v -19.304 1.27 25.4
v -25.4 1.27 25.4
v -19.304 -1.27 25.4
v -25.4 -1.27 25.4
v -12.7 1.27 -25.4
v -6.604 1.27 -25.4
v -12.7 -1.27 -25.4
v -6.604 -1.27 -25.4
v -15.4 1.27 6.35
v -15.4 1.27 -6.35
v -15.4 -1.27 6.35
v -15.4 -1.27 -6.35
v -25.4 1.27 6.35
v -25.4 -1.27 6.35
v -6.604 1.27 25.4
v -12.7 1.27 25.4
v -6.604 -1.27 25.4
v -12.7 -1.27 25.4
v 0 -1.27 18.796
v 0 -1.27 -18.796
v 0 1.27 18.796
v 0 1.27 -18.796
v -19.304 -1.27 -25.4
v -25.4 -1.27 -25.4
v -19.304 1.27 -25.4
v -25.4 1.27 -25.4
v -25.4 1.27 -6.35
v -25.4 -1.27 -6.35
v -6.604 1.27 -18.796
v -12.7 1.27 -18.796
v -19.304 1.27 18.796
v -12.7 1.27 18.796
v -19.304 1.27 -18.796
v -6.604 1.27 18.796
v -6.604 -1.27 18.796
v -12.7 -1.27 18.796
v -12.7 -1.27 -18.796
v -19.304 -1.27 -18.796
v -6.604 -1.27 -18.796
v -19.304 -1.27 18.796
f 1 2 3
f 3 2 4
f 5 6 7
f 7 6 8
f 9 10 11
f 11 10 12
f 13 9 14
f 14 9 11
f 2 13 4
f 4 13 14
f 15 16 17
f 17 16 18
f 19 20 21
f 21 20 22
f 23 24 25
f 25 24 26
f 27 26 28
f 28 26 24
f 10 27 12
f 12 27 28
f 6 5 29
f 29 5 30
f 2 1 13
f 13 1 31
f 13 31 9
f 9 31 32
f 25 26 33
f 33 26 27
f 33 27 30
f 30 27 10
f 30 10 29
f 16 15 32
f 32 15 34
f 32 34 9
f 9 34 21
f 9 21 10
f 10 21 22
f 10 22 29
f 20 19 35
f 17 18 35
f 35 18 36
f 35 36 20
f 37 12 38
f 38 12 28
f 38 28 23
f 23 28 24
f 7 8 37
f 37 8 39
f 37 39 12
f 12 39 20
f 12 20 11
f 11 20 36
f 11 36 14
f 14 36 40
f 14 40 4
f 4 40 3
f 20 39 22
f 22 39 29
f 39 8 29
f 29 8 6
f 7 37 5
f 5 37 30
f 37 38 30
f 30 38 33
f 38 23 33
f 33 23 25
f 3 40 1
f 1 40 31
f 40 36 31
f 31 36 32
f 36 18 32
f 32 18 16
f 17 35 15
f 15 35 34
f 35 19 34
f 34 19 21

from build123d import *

# Parameters (mm, degrees)
BOSS_EXTRUDE1_DEPTH = 1.27
SKETCH2_W           = 6.604
SKETCH2_H           = 6.604
CUT_EXTRUDE1_DEPTH  = 37.010715072


with BuildPart() as part:
    # Sketch1 → Boss-Extrude1 (new, symmetric)
    with BuildSketch(Plane(origin=(0, 0, 0), x_dir=(1, 0, 0), z_dir=(0, 1, 0))):
        Polygon((0, -25.4), (0, 25.4), (-25.4, 25.4), (-25.4, 6.35), (-15.4, 6.35), (-15.4, -6.35), (-25.4, -6.35), (-25.4, -25.4), align=None)
    extrude(amount=BOSS_EXTRUDE1_DEPTH, both=True)

    # Sketch2 → Cut-Extrude1 (cut, through all)
    with BuildSketch(Plane(origin=(0, 1.27, 0), x_dir=(1, 0, 0), z_dir=(0, 1, 0))):
        with Locations((-3.302, 22.098)):
            Rectangle(SKETCH2_W, SKETCH2_H)
        with Locations((-16.002, 22.098)):
            Rectangle(SKETCH2_W, SKETCH2_H)
        with Locations((-16.002, -22.098)):
            Rectangle(SKETCH2_W, SKETCH2_H)
        with Locations((-3.302, -22.098)):
            Rectangle(SKETCH2_W, SKETCH2_H)
    extrude(amount=-CUT_EXTRUDE1_DEPTH, mode=Mode.SUBTRACT)


solid = part.part
